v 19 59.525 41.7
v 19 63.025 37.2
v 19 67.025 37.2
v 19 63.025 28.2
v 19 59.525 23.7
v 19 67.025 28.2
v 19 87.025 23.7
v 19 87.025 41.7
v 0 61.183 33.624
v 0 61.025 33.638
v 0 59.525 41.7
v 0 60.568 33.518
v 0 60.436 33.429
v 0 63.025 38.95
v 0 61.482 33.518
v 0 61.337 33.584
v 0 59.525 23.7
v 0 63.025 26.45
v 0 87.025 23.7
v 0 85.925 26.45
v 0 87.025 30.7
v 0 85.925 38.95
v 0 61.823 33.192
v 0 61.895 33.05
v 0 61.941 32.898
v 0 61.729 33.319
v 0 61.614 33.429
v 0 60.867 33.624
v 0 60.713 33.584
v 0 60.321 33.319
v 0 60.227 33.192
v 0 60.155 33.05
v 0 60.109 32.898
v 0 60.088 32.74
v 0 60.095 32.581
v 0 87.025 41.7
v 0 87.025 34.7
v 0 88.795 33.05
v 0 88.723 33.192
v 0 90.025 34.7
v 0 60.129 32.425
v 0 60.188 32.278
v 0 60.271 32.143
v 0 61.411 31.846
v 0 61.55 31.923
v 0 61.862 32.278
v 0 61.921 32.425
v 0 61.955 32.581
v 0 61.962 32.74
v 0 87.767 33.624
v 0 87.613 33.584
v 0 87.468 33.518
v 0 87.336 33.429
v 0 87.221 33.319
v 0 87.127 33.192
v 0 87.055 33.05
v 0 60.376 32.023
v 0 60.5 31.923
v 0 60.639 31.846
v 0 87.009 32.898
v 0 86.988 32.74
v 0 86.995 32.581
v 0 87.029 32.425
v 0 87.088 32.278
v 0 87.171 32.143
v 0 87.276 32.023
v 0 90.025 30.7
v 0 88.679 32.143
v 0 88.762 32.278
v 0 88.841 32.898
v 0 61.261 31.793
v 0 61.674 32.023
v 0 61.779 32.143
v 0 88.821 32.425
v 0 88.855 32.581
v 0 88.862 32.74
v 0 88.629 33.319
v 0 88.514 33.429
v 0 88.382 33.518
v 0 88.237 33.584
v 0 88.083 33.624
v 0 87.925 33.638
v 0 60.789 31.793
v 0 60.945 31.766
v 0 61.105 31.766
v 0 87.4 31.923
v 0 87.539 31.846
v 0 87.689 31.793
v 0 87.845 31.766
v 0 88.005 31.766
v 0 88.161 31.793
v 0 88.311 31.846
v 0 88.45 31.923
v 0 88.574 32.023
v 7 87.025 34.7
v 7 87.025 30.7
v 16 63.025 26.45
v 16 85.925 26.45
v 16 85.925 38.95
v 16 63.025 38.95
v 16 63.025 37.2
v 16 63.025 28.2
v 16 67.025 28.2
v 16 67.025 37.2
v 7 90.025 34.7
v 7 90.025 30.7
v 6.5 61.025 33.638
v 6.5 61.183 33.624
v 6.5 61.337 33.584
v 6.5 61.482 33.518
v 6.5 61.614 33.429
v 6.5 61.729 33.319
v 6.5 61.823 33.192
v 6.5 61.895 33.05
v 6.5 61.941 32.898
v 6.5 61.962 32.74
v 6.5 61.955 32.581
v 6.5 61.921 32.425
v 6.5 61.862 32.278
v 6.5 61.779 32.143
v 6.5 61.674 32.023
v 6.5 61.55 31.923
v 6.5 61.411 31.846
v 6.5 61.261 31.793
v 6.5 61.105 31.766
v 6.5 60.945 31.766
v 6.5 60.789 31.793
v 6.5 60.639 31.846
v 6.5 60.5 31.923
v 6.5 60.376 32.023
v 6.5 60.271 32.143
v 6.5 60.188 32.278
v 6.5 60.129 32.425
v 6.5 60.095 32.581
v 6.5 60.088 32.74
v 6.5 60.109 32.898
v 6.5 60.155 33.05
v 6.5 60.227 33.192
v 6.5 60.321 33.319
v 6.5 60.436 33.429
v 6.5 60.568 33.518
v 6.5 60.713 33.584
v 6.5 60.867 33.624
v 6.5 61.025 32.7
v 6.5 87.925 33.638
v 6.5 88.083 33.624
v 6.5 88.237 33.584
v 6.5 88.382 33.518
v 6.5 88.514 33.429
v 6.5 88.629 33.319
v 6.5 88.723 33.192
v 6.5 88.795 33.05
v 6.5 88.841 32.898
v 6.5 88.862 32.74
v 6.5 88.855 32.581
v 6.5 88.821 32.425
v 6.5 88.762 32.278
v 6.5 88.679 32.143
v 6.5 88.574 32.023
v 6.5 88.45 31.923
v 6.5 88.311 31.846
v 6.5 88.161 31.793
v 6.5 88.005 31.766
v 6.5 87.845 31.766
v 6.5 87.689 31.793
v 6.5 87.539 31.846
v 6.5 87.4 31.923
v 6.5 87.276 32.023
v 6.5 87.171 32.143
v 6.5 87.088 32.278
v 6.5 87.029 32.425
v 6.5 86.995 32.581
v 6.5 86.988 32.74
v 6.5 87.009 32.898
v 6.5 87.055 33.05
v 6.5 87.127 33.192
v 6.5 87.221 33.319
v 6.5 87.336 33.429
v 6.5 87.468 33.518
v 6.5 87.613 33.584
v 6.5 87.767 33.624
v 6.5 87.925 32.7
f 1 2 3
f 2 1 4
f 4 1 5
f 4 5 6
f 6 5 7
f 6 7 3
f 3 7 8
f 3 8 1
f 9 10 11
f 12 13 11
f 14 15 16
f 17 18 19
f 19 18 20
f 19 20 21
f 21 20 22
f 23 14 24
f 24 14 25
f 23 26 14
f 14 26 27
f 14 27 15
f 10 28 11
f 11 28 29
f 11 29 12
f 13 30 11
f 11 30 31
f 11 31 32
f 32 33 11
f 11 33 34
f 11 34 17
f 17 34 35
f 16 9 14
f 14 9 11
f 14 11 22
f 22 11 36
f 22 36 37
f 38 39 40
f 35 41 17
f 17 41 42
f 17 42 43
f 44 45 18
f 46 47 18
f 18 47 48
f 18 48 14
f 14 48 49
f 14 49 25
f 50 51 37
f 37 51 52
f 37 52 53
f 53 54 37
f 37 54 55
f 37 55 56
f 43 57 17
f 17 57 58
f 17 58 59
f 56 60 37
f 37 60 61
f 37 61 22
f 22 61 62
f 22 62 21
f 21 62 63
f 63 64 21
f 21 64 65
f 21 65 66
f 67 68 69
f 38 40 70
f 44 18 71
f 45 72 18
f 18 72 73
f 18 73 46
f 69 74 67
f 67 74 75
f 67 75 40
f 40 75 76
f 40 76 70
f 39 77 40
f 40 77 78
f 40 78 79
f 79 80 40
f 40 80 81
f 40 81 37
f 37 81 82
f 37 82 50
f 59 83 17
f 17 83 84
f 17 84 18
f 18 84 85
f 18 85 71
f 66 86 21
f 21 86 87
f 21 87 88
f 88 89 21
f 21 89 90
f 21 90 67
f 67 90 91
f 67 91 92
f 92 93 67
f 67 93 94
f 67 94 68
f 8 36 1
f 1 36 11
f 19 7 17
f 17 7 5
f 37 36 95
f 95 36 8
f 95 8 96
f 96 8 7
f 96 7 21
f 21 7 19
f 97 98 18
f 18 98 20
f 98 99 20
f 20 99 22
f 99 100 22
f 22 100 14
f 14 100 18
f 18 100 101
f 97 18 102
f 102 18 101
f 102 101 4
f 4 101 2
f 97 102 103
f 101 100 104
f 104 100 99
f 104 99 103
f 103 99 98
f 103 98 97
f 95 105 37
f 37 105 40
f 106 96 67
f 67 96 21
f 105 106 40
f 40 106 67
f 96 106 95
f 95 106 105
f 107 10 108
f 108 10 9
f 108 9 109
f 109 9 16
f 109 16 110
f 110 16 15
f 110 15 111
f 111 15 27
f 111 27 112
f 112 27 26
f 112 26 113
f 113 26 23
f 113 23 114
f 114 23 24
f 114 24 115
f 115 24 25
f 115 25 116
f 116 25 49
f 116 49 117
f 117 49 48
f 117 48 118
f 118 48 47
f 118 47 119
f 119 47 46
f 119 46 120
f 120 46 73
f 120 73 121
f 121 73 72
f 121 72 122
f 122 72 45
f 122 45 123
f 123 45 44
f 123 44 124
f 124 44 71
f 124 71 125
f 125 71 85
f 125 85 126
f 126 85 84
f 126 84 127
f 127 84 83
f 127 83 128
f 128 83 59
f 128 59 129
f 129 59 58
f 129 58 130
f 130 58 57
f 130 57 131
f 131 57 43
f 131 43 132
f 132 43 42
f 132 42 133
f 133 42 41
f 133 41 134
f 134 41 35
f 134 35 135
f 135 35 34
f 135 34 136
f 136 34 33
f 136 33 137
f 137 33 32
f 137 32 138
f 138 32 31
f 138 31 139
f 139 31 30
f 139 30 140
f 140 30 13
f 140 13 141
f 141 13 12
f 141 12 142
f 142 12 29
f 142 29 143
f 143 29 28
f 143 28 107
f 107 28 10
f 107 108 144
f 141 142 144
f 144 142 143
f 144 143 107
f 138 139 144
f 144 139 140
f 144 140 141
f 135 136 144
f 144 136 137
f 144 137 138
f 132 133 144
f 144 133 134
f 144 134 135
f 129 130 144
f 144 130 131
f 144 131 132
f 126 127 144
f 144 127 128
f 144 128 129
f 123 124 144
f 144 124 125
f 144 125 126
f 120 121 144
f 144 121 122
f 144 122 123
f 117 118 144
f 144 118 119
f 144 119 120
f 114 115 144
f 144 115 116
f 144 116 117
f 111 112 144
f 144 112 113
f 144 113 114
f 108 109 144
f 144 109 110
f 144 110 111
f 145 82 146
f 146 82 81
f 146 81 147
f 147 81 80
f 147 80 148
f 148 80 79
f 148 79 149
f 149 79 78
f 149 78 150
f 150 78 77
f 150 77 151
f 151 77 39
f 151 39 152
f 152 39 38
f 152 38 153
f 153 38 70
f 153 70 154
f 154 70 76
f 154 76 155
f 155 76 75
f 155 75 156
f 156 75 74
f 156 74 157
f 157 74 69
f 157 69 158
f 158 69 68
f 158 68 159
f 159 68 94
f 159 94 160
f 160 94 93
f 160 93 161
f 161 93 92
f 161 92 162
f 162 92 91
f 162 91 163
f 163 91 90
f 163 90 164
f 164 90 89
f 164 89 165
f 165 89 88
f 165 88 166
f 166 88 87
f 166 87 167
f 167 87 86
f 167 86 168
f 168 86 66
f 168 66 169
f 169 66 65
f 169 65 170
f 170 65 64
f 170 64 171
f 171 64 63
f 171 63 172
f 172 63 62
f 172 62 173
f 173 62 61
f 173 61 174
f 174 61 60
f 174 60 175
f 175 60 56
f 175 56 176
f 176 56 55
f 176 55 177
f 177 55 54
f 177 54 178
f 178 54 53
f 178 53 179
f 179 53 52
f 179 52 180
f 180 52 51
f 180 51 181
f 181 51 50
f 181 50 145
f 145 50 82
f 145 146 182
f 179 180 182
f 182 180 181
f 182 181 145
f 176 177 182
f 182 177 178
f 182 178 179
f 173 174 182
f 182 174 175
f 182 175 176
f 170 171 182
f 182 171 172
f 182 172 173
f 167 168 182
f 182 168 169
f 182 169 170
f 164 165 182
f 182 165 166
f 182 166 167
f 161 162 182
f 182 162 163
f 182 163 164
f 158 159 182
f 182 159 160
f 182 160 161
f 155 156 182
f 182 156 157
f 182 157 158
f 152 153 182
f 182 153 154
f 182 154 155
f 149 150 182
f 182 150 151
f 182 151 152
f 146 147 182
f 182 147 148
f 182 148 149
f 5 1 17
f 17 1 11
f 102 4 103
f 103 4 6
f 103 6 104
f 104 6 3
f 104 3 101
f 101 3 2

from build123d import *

# Parameters (mm, degrees)
BOSS_EXTRUDE1_DEPTH = 19
SKETCH3_W           = 4.925645198
SKETCH3_H           = 33.799871634
BOSS_EXTRUDE2_DEPTH = 19
SKETCH4_W           = 4.925645198
SKETCH4_H           = 7.649871634
CUT_EXTRUDE1_DEPTH  = 41.8379487
SKETCH5_W           = 10.925645198
SKETCH5_H           = 26.15
CUT_EXTRUDE3_DEPTH  = 37.834770316
SKETCH6_W           = 24.5
SKETCH6_H           = 6.25
BOSS_EXTRUDE3_DEPTH = 19
SKETCH7_W           = 18
SKETCH7_H           = 64
BOSS_EXTRUDE4_DEPTH = 19
BOSS_EXTRUDE5_DEPTH = 19
SKETCH10_W          = 12.5
SKETCH10_H          = 22.9
CUT_EXTRUDE4_DEPTH  = 16
SKETCH11_W          = 4
SKETCH11_H          = 3
BOSS_EXTRUDE6_DEPTH = 7
SKETCH12_R          = 0.9375
CUT_EXTRUDE5_DEPTH  = 6.5
BOSS_EXTRUDE7_DEPTH = 19
CUT_EXTRUDE6_DEPTH  = 102.016783878
CUT_EXTRUDE7_DEPTH  = 102.016783878
CUT_EXTRUDE8_DEPTH  = 102.016783878
SKETCH20_W          = 9.2
SKETCH20_H          = 10.4
CUT_EXTRUDE10_DEPTH = 102.016783878
SKETCH21_W          = 5
SKETCH21_H          = 22
BOSS_EXTRUDE8_DEPTH = 19
CUT_EXTRUDE11_DEPTH = 102.016783878
CUT_EXTRUDE12_DEPTH = 102.016783878
SKETCH24_W          = 9
SKETCH24_H          = 4
CUT_EXTRUDE13_DEPTH = 10


with BuildPart() as part:
    # Sketch2 → Boss-Extrude1 (new body)
    with BuildSketch(Plane(origin=(0, 0, 0), x_dir=(0, 0, -1), z_dir=(1, 0, 0))):
        Polygon((-4.2, 3.125), (-14.2, 3.125), (-14.2, -3.125), (-4.2, -3.125), (-4.2, -5.2), (-2.4, -5.2), (0, -2.8), (0, 2.8), (-2.4, 5.2), (-4.2, 5.2), align=None)
    boss_extrude1 = extrude(amount=BOSS_EXTRUDE1_DEPTH)

    # Sketch3 → Boss-Extrude2 (add)
    with BuildSketch(Plane.ZY):
        with Locations((16.662822599, 13.774935817)):
            Rectangle(SKETCH3_W, SKETCH3_H)
    extrude(amount=-BOSS_EXTRUDE2_DEPTH)

    # Mirror2: Boss-Extrude1 across plane
    add(boss_extrude1.mirror(Plane.ZX.offset(9.95)))

    # Sketch4 → Cut-Extrude1 (cut, through all)
    with BuildSketch(Plane.ZY):
        with Locations((16.662822599, 26.849935817)):
            Rectangle(SKETCH4_W, SKETCH4_H)
    extrude(amount=-CUT_EXTRUDE1_DEPTH, mode=Mode.SUBTRACT)

    # Sketch5 → Cut-Extrude3 (cut, through all)
    with BuildSketch(Plane(origin=(19, 0, 0), x_dir=(0, 0, -1), z_dir=(1, 0, 0))):
        with Locations((-13.662822599, 9.95)):
            Rectangle(SKETCH5_W, SKETCH5_H)
    extrude(amount=-CUT_EXTRUDE3_DEPTH, mode=Mode.SUBTRACT)


with BuildPart() as cut_extrude3_piece_1:
    # of the separate pieces the step leaves, piece 1, a body of its own (cut_extrude3_pieces)
    add(part.part.solids().sort_by_distance((0, 16.775, 8.2))[0])



with BuildPart() as cut_extrude3_piece_2:
    # of the separate pieces the step leaves, piece 2, a body of its own (cut_extrude3_pieces)
    add(part.part.solids().sort_by_distance((0, 3.125, 4.2))[0])


with BuildPart() as cut_extrude3_piece_1_1:
    add(cut_extrude3_piece_1.part)

    add(cut_extrude3_piece_2.part)  # Boss-Extrude3 merges Cut-Extrude3 piece 2
    # Sketch6 → Boss-Extrude3 (add)
    with BuildSketch(Plane(origin=(19, 0, 0), x_dir=(0, 0, -1), z_dir=(1, 0, 0))):
        Polygon((-25.005276382, 16.775), (-32.7, 16.775), (-8.2, -3.125), (-8.2, 3.125), align=None)
        with Locations((-20.45, 19.9)):
            Rectangle(SKETCH6_W, SKETCH6_H)
    extrude(amount=-BOSS_EXTRUDE3_DEPTH)

    # Sketch7 → Boss-Extrude4 (add)
    with BuildSketch(Plane.ZY):
        with Locations((32.7, 55.025)):
            Rectangle(SKETCH7_W, SKETCH7_H)
    extrude(amount=-BOSS_EXTRUDE4_DEPTH)

    # Sketch9 → Boss-Extrude5 (add)
    with BuildSketch(Plane.ZY):
        Polygon((41.7, 23.025), (32.7, 23.025), (32.7, 16.775), align=None)
    extrude(amount=-BOSS_EXTRUDE5_DEPTH)

    # Sketch10 → Cut-Extrude4 (cut)
    with BuildSketch(Plane.ZY):
        with Locations((32.7, 74.475)):
            Rectangle(SKETCH10_W, SKETCH10_H)
    extrude(amount=-CUT_EXTRUDE4_DEPTH, mode=Mode.SUBTRACT)

    # Sketch11 → Boss-Extrude6 (add)
    with BuildSketch(Plane.ZY):
        with Locations((32.7, 88.525)):
            Rectangle(SKETCH11_W, SKETCH11_H)
    extrude(amount=-BOSS_EXTRUDE6_DEPTH)

    # Sketch12 → Cut-Extrude5 (cut)
    with BuildSketch(Plane.ZY):
        with Locations((32.7, 87.925)):
            Circle(SKETCH12_R)
        with Locations((32.7, 61.025)):
            Circle(SKETCH12_R)
    extrude(amount=-CUT_EXTRUDE5_DEPTH, mode=Mode.SUBTRACT)

    # Sketch13 → Boss-Extrude7 (add)
    with BuildSketch(Plane.ZY):
        Polygon((9.2, 16.775), (9.2, 3.937244898), (25.005276382, 16.775), align=None)
    extrude(amount=-BOSS_EXTRUDE7_DEPTH)

    # Sketch14 → Cut-Extrude6 (cut, through all)
    with BuildSketch(Plane.ZY):
        Polygon((23.7, 59.525), (28.7, 52.275), (28.7, 30.275), (23.7, 23.025), align=None)
        Polygon((36.7, 30.275), (41.7, 23.025), (41.7, 59.525), (36.7, 52.275), align=None)
    extrude(amount=-CUT_EXTRUDE6_DEPTH, mode=Mode.SUBTRACT)

    # Sketch16 → Cut-Extrude7 (cut, through all)
    with BuildSketch(Plane(origin=(19, 0, 0), x_dir=(0, 0, -1), z_dir=(1, 0, 0))):
        Polygon((-8.2, -3.125), (-41.231348669, 23.704544429), (-41.7, 23.025), align=None)
    extrude(amount=-CUT_EXTRUDE7_DEPTH, mode=Mode.SUBTRACT)

    # Sketch17 → Cut-Extrude8 (cut, through all)
    with BuildSketch(Plane.ZY):
        Polygon((36.7, 30.275), (36.7, 20.023979592), (41.231348669, 23.704544429), align=None)
    extrude(amount=-CUT_EXTRUDE8_DEPTH, mode=Mode.SUBTRACT)

    # Sketch20 → Cut-Extrude10 (cut, through all)
    with BuildSketch(Plane.ZY):
        Polygon((36.7, 16.775), (9.2, 16.775), (9.2, 5.2), (9.2, -5.2), (36.7, -5.2), align=None)
        with Locations((4.6, 0)):
            Rectangle(SKETCH20_W, SKETCH20_H)
    extrude(amount=-CUT_EXTRUDE10_DEPTH, mode=Mode.SUBTRACT)

    # Sketch21 → Boss-Extrude8 (add, through all)
    with BuildSketch(Plane.ZY):
        with Locations((8.8, 5.775)):
            Rectangle(SKETCH21_W, SKETCH21_H)
    extrude(amount=-BOSS_EXTRUDE8_DEPTH)

    # Sketch22 → Cut-Extrude11 (cut, through all)
    with BuildSketch(Plane.ZY):
        Polygon((32.7, 16.775), (36.7, 22.575), (36.7, 20.023979592), align=None)
    extrude(amount=-CUT_EXTRUDE11_DEPTH, mode=Mode.SUBTRACT)

    # Sketch23 → Cut-Extrude12 (cut, through all)
    with BuildSketch(Plane.ZY):
        Polygon((23.7, 59.525), (41.7, 59.525), (41.7, -5.225), (6.3, -5.225), (0, 17.1), (0, 22.7), (2.4, 25.1), align=None)
    extrude(amount=-CUT_EXTRUDE12_DEPTH, mode=Mode.SUBTRACT)

    # Sketch24 → Cut-Extrude13 (cut)
    with BuildSketch(Plane.ZY.offset(-16)):
        with Locations((32.7, 65.025)):
            Rectangle(SKETCH24_W, SKETCH24_H)
    extrude(amount=-CUT_EXTRUDE13_DEPTH, mode=Mode.SUBTRACT)


solid = cut_extrude3_piece_1_1.part
